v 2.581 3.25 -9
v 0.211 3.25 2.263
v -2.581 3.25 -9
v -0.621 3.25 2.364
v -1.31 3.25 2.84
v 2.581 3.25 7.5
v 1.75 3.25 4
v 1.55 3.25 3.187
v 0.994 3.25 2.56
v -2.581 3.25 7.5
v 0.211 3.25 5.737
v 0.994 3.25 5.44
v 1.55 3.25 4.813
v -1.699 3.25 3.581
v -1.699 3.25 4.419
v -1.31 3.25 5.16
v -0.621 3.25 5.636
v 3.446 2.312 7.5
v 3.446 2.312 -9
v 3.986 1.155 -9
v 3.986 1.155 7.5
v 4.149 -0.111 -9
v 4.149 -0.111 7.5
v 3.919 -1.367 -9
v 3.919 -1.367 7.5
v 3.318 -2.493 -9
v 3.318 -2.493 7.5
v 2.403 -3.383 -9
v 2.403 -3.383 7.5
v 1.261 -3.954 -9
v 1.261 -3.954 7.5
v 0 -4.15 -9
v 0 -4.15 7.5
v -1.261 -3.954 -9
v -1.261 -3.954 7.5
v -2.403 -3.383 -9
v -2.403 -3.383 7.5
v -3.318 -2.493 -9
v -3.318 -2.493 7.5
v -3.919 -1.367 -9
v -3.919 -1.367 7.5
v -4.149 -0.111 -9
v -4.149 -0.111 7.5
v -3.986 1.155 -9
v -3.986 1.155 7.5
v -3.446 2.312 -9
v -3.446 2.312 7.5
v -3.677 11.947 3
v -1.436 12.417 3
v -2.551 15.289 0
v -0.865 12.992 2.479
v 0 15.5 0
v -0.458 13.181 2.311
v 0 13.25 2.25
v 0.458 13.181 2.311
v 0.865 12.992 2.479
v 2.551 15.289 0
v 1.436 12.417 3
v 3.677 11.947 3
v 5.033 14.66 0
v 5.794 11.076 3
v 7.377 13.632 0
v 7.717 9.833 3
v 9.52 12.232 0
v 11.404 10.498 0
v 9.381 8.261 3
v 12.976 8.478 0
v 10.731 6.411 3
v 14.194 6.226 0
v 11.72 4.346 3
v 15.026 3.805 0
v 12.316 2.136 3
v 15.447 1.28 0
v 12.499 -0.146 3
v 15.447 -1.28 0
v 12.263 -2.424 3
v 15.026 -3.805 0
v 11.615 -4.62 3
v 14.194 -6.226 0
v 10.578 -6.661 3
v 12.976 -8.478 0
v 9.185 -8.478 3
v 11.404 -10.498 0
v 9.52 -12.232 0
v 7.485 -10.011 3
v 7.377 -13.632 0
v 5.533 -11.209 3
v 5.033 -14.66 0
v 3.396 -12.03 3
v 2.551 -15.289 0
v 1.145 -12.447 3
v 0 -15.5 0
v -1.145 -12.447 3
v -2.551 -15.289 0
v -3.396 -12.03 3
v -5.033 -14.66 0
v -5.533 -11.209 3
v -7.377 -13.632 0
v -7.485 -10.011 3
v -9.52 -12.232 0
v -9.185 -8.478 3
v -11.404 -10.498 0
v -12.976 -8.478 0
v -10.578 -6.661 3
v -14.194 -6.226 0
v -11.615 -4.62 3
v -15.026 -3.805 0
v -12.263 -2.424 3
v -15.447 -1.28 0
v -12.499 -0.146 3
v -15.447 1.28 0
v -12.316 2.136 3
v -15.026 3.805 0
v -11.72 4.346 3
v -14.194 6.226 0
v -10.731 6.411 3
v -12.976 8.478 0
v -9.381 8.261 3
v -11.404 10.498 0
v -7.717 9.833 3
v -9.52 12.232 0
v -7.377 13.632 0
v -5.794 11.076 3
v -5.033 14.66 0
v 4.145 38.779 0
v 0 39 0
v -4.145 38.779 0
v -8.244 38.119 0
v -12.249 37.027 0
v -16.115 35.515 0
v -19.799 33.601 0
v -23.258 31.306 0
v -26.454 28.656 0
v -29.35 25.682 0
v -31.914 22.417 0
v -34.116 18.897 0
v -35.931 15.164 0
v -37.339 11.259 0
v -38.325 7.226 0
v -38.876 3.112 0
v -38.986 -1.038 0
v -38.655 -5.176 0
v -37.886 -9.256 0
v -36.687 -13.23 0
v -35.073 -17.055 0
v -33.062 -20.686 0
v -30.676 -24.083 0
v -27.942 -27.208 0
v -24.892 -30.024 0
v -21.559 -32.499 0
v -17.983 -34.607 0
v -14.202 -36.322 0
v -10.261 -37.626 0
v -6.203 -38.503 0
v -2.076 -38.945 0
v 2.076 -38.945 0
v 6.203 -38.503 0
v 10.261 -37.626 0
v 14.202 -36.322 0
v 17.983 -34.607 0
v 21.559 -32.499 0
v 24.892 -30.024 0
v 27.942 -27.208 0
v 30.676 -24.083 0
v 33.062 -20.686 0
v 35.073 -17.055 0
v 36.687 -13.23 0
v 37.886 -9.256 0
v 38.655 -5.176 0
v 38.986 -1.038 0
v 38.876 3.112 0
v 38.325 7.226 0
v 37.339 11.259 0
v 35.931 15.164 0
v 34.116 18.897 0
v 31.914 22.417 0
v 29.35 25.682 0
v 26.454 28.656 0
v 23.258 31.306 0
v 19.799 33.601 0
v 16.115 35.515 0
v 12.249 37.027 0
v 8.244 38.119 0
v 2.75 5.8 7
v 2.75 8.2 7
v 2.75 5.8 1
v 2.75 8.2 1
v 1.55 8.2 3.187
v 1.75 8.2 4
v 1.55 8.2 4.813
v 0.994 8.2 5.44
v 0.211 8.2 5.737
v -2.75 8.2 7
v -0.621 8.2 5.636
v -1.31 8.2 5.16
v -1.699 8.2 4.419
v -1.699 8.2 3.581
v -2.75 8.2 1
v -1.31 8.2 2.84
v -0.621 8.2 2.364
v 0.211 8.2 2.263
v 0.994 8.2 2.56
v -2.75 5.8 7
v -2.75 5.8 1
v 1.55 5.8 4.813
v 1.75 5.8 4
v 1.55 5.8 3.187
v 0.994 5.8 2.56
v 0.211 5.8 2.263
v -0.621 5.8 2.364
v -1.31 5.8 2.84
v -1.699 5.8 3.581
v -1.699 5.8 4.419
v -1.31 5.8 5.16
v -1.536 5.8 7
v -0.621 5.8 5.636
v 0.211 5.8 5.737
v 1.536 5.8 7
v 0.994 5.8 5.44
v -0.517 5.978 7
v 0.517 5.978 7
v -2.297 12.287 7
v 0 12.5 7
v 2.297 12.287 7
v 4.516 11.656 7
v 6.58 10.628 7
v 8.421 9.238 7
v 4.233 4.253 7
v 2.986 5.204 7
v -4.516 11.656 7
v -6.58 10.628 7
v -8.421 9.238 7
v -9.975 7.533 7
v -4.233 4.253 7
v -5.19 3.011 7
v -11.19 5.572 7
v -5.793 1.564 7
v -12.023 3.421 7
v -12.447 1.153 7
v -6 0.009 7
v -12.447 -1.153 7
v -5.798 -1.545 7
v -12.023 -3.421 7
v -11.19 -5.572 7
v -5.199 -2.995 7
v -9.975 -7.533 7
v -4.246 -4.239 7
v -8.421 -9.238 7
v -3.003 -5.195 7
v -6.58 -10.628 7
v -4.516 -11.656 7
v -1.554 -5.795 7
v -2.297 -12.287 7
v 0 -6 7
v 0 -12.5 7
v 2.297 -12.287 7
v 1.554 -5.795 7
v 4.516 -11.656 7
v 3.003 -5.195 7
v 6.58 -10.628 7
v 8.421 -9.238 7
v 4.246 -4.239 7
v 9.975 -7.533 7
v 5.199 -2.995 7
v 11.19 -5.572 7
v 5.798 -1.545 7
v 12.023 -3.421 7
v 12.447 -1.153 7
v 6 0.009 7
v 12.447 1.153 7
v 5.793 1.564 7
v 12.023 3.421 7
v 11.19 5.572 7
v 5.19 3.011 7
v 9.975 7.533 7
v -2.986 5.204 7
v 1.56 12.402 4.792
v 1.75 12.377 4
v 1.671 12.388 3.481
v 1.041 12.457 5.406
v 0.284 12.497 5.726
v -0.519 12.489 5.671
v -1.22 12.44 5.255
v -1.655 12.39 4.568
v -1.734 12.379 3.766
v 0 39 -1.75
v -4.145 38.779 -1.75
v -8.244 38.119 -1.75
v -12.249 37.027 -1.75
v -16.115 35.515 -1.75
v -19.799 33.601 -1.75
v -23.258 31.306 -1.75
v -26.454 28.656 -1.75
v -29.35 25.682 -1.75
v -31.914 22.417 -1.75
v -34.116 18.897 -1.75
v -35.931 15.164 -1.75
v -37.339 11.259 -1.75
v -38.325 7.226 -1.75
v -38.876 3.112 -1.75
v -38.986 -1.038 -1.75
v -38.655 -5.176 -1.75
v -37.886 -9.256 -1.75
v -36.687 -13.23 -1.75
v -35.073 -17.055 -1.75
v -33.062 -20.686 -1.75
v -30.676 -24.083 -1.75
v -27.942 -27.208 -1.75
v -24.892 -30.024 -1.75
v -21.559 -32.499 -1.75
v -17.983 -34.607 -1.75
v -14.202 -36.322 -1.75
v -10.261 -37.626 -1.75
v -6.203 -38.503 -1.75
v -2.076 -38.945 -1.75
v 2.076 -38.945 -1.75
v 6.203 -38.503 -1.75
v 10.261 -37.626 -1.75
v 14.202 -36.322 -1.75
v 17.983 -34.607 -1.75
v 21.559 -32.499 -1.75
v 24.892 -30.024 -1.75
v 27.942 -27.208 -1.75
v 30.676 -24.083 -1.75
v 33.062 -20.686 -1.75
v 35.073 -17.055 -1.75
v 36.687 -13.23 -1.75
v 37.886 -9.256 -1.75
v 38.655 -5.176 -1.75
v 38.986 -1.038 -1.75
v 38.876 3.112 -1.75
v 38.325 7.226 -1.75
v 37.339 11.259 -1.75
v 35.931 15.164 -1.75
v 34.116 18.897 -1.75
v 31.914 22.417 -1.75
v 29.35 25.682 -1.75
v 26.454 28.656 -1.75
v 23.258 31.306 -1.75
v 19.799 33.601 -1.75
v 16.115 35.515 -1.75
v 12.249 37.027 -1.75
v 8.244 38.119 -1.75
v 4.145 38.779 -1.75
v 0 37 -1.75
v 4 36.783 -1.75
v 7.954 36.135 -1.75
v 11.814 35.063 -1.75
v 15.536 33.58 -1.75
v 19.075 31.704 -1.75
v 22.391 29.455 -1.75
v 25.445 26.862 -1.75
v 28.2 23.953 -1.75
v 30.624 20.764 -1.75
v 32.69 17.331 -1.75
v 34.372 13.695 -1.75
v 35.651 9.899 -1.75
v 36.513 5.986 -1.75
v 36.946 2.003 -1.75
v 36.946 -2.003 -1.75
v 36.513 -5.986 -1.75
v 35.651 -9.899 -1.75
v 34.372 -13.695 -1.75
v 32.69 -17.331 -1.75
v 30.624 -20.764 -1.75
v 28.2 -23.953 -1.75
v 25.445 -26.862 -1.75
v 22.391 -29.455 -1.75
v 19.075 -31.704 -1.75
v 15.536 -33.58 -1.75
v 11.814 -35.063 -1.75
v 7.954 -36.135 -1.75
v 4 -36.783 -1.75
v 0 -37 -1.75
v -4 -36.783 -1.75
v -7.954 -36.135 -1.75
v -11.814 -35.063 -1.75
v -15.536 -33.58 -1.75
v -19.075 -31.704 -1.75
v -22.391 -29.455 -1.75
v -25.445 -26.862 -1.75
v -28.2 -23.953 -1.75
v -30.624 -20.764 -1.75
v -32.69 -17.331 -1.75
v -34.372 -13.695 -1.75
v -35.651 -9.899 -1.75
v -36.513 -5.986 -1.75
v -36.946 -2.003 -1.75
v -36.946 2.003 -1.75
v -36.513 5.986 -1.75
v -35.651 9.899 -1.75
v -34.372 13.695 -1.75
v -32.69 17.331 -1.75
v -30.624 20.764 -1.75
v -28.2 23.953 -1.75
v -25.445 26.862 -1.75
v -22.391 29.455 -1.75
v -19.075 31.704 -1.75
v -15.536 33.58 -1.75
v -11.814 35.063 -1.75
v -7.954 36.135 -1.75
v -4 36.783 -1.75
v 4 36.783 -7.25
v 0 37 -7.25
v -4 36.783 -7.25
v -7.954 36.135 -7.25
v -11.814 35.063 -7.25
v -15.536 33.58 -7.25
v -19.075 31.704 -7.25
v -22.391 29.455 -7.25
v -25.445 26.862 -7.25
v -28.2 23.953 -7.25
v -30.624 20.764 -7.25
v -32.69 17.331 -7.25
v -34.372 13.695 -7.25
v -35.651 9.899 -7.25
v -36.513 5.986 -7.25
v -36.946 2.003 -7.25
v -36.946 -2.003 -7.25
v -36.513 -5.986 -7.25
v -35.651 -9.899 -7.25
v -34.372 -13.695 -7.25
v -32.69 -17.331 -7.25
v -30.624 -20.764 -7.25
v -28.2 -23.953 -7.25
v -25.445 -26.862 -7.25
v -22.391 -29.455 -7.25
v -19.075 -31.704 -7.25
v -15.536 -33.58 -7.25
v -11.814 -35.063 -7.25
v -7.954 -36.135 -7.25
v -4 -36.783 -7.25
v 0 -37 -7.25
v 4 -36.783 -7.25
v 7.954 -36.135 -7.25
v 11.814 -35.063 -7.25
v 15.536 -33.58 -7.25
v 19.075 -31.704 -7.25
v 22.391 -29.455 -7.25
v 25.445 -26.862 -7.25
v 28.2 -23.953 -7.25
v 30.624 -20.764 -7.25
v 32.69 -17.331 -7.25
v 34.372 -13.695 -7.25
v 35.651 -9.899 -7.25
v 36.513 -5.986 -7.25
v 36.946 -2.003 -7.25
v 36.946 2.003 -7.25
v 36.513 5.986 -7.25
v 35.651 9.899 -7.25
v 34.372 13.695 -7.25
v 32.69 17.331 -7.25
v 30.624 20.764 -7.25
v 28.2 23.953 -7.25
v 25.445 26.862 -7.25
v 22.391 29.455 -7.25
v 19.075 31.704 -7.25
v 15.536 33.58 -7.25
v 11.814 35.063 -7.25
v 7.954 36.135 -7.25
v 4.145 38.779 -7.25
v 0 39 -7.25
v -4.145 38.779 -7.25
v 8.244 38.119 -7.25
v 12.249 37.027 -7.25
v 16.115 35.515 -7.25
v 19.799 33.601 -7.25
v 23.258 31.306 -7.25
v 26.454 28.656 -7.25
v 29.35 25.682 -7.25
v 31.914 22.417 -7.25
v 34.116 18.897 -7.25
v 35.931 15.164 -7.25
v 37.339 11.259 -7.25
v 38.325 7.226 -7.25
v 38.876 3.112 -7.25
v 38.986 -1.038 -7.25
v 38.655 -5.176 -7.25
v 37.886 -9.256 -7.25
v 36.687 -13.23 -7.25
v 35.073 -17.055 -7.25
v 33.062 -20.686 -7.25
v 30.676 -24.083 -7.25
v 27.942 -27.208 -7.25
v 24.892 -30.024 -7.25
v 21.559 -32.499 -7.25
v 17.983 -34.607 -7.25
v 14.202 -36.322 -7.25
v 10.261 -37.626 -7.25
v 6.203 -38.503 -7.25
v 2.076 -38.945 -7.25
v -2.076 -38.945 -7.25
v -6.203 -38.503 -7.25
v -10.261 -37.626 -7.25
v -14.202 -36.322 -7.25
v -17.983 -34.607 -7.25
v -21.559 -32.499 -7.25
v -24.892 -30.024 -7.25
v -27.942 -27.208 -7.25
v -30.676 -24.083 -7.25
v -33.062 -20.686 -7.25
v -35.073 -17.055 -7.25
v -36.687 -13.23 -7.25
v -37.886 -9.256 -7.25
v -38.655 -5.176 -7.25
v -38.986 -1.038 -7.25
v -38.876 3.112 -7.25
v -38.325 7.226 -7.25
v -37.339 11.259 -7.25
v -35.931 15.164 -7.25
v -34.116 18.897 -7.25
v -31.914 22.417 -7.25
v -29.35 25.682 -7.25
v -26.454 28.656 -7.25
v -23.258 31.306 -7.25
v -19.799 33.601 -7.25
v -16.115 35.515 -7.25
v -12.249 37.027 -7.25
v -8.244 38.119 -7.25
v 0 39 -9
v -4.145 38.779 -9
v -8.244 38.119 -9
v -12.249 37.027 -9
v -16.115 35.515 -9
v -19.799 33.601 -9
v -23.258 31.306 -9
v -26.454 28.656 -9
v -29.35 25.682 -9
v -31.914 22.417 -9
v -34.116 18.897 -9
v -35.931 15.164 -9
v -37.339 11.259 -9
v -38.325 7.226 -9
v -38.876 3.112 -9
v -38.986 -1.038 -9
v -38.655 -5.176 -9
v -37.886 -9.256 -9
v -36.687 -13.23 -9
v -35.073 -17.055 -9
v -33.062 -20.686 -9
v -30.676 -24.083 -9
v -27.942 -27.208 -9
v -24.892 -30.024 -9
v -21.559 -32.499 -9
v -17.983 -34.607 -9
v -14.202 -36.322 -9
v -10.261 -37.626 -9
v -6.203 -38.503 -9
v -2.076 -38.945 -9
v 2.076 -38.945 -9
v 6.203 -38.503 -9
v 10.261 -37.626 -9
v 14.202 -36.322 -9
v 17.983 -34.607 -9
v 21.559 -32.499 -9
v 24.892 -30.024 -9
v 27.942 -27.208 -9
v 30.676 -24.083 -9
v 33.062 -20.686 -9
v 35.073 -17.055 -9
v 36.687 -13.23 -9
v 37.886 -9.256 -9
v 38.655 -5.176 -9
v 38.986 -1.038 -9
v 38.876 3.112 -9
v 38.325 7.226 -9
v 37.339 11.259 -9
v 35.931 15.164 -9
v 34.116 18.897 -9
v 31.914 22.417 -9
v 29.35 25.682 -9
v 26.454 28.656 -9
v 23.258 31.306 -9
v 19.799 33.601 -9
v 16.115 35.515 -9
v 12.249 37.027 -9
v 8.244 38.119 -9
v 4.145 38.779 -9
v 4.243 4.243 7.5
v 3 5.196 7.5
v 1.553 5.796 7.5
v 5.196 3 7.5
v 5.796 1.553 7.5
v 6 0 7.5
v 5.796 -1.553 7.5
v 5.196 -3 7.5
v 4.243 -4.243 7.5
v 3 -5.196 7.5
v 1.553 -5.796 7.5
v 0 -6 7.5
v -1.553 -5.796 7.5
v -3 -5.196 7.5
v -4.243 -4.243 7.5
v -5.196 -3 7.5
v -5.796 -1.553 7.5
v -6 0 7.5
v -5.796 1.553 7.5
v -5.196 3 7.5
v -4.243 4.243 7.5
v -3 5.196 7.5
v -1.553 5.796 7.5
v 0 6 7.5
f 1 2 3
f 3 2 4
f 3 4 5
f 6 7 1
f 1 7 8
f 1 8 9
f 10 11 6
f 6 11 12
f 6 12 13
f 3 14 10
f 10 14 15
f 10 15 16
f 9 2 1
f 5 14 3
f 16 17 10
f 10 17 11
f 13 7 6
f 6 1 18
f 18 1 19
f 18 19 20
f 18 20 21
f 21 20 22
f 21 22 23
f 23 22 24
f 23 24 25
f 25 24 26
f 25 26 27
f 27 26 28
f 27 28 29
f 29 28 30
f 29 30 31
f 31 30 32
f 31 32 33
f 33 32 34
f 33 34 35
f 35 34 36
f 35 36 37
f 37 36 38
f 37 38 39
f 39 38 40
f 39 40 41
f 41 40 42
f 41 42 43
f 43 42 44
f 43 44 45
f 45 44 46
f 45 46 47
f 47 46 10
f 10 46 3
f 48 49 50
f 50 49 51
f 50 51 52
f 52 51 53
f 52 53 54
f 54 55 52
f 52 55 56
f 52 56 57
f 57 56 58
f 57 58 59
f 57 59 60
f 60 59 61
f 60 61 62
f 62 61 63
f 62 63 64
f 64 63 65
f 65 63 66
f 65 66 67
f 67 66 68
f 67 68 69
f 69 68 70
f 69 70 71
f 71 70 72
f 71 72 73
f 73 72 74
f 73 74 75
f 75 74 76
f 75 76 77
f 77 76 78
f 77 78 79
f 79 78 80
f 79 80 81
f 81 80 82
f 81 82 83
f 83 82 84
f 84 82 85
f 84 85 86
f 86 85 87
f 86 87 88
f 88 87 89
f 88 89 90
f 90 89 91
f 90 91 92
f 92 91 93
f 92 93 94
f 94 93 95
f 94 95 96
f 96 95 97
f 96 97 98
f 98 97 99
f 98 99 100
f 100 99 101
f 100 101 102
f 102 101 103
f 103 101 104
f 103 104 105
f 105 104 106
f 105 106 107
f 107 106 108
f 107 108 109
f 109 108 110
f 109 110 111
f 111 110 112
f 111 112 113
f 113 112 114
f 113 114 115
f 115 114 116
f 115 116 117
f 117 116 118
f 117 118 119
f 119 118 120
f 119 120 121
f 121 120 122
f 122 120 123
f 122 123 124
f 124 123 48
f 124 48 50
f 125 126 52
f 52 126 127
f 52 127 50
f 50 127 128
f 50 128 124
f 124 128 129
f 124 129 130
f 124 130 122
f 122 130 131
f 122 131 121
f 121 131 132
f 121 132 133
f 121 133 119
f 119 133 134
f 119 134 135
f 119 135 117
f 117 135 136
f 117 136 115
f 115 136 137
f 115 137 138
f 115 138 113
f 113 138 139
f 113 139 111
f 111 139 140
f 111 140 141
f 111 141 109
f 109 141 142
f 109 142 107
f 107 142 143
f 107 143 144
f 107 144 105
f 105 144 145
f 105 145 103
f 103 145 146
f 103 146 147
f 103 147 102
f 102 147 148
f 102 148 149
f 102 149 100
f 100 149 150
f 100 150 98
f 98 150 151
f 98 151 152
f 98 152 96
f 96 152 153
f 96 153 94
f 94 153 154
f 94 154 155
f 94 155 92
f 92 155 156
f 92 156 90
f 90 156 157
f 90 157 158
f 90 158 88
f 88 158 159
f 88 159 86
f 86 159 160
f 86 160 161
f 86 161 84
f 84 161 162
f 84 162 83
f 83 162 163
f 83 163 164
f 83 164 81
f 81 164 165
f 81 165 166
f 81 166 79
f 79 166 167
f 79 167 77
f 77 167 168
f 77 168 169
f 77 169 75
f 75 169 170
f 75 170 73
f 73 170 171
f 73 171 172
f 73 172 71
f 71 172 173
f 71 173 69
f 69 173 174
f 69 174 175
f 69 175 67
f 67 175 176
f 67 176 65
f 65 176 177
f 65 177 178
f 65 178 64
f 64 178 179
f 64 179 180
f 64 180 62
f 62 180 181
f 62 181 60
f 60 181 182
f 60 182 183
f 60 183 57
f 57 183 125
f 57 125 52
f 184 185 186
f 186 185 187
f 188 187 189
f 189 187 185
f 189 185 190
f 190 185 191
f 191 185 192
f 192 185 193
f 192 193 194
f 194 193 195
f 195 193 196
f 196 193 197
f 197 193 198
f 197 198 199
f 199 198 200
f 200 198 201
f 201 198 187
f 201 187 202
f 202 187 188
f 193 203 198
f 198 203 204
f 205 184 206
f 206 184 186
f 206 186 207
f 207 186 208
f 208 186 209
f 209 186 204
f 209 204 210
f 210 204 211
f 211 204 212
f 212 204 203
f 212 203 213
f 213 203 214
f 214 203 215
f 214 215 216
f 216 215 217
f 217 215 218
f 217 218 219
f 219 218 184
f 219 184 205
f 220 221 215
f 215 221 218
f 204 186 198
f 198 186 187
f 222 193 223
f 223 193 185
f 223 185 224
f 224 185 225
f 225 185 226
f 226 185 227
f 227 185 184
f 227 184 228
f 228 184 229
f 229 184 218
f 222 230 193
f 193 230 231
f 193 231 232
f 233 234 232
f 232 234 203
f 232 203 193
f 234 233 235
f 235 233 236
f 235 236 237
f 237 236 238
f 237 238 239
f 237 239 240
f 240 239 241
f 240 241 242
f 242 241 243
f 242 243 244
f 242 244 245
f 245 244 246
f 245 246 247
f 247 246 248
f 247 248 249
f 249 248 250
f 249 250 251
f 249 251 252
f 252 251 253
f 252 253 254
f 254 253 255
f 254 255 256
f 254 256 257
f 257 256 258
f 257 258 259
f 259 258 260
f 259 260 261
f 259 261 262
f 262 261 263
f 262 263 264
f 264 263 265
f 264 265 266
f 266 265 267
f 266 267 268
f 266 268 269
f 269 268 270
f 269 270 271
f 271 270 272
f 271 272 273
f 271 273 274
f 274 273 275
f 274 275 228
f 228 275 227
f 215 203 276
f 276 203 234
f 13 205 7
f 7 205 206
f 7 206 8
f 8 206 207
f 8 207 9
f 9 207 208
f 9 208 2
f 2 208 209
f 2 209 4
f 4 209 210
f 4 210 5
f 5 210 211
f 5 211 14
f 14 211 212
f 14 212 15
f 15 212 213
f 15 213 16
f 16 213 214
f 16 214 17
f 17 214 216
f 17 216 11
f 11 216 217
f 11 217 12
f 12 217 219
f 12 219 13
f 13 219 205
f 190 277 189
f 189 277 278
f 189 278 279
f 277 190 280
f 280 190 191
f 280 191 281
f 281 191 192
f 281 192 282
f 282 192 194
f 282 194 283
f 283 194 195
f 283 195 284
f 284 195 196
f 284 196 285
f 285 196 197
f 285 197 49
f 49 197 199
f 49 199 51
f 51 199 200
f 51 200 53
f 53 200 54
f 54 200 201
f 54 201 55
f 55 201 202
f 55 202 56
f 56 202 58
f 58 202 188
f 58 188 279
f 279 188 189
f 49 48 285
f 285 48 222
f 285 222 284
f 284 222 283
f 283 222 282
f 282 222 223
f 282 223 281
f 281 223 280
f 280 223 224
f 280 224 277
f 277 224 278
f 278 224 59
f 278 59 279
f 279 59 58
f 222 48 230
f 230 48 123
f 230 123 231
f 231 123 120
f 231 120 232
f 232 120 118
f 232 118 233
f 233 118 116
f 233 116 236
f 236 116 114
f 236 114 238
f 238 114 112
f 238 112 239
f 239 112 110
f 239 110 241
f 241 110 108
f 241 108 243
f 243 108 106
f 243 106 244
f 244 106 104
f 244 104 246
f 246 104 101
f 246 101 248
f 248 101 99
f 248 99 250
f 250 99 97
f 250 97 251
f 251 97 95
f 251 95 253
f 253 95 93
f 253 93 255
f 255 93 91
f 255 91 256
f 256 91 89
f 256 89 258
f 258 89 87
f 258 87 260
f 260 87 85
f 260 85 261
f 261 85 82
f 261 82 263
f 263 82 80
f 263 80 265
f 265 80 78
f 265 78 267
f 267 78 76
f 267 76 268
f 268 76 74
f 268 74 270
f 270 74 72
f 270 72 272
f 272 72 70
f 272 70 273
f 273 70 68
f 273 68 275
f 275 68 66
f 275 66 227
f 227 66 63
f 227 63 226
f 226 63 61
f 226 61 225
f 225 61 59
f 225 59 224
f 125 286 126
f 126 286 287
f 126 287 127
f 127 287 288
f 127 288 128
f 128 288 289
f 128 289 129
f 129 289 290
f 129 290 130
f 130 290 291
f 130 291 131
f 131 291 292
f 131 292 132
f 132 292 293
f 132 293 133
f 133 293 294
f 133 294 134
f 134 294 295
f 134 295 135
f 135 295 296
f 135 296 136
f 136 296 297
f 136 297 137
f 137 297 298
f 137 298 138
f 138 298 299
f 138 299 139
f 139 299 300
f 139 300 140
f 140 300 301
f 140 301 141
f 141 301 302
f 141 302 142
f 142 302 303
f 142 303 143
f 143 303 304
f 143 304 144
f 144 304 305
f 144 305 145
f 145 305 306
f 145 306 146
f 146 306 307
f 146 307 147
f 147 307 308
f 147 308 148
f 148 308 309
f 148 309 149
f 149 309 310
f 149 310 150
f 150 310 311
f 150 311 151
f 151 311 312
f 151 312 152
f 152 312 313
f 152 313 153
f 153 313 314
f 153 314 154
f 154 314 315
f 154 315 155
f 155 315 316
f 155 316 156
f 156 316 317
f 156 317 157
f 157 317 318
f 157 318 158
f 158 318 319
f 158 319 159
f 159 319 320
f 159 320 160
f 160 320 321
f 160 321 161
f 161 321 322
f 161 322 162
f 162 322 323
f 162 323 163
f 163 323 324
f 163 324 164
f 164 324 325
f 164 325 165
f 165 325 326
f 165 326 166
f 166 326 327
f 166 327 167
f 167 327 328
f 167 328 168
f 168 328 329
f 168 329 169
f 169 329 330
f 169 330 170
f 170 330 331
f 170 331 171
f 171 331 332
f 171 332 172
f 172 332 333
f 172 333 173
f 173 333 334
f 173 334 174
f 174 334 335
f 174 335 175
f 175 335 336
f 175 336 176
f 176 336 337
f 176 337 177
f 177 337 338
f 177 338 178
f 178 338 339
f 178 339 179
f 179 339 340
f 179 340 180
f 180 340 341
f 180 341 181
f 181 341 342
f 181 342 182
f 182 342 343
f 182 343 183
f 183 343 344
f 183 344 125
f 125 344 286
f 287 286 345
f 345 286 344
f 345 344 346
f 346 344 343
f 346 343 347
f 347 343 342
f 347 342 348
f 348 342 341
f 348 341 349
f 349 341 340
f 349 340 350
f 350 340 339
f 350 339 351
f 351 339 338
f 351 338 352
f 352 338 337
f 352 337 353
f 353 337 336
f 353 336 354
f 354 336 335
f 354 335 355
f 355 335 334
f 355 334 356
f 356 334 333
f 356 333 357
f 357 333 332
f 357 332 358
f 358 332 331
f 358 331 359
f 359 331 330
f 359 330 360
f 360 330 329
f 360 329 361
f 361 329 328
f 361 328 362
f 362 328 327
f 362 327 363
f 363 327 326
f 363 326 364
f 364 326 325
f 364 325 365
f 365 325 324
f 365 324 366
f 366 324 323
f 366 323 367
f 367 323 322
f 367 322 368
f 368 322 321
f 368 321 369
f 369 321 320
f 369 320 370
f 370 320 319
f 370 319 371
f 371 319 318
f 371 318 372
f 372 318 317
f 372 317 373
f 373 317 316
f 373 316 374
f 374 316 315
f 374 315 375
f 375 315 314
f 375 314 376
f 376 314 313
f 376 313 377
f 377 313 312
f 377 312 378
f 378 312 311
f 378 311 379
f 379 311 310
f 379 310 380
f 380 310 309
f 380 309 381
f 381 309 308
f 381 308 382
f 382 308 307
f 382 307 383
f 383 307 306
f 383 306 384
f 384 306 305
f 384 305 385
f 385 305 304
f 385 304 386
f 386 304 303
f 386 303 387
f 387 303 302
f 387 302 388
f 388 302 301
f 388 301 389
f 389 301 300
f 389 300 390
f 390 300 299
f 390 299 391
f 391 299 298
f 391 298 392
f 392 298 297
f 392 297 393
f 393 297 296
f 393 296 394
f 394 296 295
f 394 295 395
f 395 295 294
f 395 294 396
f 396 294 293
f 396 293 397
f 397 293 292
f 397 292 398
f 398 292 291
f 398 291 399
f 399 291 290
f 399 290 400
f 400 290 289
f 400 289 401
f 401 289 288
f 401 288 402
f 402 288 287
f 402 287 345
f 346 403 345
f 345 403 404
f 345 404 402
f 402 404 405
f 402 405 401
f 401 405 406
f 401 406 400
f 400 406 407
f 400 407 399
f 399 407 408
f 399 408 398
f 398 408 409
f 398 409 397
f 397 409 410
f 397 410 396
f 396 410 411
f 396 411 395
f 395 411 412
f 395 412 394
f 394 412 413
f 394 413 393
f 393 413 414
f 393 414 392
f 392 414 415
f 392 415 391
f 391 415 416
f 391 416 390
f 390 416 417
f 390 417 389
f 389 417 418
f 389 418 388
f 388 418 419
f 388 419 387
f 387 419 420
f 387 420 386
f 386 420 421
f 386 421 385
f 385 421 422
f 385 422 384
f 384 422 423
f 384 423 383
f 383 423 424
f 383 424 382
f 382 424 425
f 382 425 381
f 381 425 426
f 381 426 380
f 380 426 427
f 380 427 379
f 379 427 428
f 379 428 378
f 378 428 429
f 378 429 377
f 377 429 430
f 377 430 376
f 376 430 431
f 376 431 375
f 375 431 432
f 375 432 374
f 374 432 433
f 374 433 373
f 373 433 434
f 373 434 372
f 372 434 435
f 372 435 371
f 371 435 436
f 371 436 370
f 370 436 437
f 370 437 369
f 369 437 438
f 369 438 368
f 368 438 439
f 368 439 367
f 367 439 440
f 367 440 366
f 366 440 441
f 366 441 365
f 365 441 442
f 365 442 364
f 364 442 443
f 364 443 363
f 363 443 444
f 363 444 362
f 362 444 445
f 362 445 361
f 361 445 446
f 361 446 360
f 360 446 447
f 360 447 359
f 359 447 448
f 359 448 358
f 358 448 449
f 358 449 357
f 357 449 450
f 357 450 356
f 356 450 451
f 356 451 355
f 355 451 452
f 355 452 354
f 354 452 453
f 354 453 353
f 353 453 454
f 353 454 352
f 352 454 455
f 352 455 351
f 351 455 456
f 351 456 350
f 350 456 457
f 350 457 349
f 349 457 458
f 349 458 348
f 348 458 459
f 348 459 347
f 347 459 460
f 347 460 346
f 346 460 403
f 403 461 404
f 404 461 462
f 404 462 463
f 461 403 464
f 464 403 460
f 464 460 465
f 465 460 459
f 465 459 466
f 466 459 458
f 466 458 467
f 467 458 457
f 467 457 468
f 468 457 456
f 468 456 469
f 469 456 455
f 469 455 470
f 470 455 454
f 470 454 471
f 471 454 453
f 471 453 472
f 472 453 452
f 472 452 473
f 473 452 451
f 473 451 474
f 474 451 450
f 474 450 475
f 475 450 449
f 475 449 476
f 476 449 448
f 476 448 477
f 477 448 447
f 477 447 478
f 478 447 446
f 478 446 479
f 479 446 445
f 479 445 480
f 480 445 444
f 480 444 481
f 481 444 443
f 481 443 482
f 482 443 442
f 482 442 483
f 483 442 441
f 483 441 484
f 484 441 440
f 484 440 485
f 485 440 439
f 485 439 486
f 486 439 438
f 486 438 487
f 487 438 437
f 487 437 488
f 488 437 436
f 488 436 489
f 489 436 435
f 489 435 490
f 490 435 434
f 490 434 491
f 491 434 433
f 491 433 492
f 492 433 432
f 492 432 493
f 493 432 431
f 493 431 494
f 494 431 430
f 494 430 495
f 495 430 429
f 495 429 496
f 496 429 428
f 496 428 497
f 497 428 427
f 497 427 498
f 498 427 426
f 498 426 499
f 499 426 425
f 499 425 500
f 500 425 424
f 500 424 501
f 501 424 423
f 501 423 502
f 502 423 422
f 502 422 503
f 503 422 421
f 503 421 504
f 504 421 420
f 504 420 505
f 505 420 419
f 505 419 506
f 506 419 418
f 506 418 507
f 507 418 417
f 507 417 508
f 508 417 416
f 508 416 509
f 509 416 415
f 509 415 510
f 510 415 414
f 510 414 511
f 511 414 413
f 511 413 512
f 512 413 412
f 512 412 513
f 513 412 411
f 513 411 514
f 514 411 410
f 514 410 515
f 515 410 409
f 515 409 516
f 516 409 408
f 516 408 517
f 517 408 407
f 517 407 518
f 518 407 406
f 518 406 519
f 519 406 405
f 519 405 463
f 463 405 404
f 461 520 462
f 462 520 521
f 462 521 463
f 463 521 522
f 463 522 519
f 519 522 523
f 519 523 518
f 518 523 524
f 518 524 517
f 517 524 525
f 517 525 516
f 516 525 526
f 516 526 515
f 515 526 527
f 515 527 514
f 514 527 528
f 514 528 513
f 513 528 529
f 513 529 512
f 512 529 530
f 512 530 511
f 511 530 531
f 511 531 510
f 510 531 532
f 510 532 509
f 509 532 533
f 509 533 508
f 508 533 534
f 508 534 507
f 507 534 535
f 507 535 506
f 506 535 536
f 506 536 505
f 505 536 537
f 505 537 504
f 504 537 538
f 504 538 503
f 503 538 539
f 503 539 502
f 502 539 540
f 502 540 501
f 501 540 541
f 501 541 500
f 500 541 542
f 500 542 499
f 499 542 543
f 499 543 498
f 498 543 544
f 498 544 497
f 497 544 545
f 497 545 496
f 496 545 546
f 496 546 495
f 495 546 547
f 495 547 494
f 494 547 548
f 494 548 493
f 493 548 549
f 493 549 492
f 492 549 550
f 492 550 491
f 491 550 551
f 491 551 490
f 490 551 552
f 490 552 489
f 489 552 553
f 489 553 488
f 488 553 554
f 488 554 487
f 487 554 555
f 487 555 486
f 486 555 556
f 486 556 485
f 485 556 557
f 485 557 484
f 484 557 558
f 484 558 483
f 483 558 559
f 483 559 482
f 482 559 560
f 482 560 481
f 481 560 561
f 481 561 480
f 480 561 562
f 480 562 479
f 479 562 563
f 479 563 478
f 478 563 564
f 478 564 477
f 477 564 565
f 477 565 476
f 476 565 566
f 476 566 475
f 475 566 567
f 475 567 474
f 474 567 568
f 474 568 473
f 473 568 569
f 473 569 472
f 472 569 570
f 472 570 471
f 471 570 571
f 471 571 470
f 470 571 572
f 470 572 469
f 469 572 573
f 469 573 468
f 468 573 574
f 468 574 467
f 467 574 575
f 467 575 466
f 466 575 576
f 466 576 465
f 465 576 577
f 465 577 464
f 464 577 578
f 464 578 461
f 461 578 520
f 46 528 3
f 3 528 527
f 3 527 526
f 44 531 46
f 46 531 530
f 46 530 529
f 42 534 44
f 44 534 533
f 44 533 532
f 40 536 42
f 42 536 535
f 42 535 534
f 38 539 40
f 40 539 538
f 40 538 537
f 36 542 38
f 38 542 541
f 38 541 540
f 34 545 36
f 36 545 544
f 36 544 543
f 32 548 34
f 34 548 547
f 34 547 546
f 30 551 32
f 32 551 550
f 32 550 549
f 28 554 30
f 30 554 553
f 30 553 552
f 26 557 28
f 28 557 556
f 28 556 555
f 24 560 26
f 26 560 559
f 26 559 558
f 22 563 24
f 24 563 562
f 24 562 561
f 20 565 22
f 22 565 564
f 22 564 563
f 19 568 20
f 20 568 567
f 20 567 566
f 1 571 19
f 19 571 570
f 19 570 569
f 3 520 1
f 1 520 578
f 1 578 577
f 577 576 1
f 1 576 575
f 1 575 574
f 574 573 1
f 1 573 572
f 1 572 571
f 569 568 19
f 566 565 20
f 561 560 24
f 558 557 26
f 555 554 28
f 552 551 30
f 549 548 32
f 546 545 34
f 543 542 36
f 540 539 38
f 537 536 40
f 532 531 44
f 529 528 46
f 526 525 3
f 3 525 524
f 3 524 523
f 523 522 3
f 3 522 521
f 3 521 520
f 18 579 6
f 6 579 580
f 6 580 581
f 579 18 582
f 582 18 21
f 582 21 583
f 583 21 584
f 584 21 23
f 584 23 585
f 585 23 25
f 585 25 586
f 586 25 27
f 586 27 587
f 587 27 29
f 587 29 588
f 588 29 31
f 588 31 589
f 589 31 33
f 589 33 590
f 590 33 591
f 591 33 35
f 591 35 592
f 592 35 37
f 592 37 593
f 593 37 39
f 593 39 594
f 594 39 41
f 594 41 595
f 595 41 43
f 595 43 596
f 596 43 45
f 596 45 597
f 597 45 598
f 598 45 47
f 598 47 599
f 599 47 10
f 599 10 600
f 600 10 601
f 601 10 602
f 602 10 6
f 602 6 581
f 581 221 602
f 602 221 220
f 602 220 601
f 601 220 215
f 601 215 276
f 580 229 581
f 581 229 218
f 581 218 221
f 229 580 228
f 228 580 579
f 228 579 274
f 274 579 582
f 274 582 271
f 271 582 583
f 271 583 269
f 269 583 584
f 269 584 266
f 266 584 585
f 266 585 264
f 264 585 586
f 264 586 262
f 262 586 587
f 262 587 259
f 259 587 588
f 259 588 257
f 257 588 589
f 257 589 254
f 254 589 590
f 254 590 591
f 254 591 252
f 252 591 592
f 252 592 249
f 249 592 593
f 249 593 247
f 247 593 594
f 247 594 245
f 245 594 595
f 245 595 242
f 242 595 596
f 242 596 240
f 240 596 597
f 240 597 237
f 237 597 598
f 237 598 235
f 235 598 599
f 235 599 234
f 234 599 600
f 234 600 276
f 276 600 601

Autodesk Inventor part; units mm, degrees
ref_plane "YZ Plane" through (0, 0, 0) normal (1, 0, 0) x (0, 1, 0)
ref_plane "XZ Plane" through (0, 0, 0) normal (0, 1, 0) x (-1, 0, 0)
ref_plane "XY Plane" through (0, 0, 0) normal (0, 0, 1) x (1, 0, 0)
sketch "Esquisse1" plane through (0, 0, 0) normal (1, 0, 0) x (0, 1, 0)
  line L0 (37, -9) -> (37, 0) construction
  line L1 (0, 7.5) -> (6, 7.5)
  line L2 (12.5, 7) -> (12.5, 0)
  line L3 (0, 7.5) -> (0, -9)
  line L4 (0, 31.5501) -> (0, -31.5501)
  line L5 (37, -4.5) -> (0, -4.5) construction
  line L6 (12.5, 0) -> (39, 0)
  line L7 (39, 0) -> (39, -1.75)
  line L8 (39, -1.75) -> (37, -1.75)
  line L9 (37, -1.75) -> (37, -7.25)
  line L10 (0, -9) -> (39, -9)
  line L11 (39, -9) -> (39, -7.25)
  line L12 (39, -7.25) -> (37, -7.25)
  line L13 (12.5, 7) -> (6, 7)
  line L14 (6, 7) -> (6, 7.5)
  point P0 (0, 0)
  point P1 (6, 7.25)
  dimension "d1" = 9
  dimension "d4" = 0
  dimension "d5" = 74
  dimension "d6" = 25
  dimension "d20" = 2
  dimension "d21" = 2.75
  dimension "d31" = 16.5
  dimension "d32" = 6
  dimension "d33" = 0.5
revolve "Révolution1" add sketch "Esquisse1" angle 360 about axis through (0, 0, 31.5501) along (0, 0, -1)
sketch "Esquisse2" plane through (0, 0, 0) normal (0, 1, 0) x (-1, 0, 0)
  circle A0 centre (0, 4) radius 1.75
  line L0 (-12.5, 7) -> (12.5, 7) projected
  point P0 (0, 0)
  dimension "d11" = 3.5
  dimension "d12" = 3
extrude "Extrusion1" cut sketch "Esquisse2" along normal through all
sketch "Esquisse3" plane through (0, 0, 7) normal (0, 0, 1) x (1, 0, 0)
  line L0 (-2.75, 8.2) -> (2.75, 8.2)
  line L1 (2.75, 8.2) -> (2.75, 5.8)
  line L2 (2.75, 5.8) -> (-2.75, 5.8)
  line L3 (-2.75, 5.8) -> (-2.75, 8.2)
  line L4 (-2.75, 8.2) -> (2.75, 5.8) construction
  line L5 (2.75, 8.2) -> (-2.75, 5.8) construction
  line L6 (0, 7) -> (0, 0) construction
  point P0 (0, 0)
  dimension "d15" = 5.5
  dimension "d16" = 2.4
  dimension "d17" = 7
extrude "Extrusion2" cut sketch "Esquisse3" against normal blind 6
chamfer "Chanfrein1" distance 3 angle 45 1 edges at (0, -12.5, 0)
sketch "Esquisse4" plane through (0, 0, 7.5) normal (0, 0, 1) x (1, 0, 0)
  arc A0 (-2.5807, 3.25) -> (2.5807, 3.25) centre (0, 0) ccw
  line L0 (-2.5807, 3.25) -> (2.5807, 3.25)
  point P0 (0, 0)
  dimension "d27" = 8.3
  dimension "d28" = 3.25
extrude "Extrusion3" cut sketch "Esquisse4" against normal through all
properties part number "roue"
